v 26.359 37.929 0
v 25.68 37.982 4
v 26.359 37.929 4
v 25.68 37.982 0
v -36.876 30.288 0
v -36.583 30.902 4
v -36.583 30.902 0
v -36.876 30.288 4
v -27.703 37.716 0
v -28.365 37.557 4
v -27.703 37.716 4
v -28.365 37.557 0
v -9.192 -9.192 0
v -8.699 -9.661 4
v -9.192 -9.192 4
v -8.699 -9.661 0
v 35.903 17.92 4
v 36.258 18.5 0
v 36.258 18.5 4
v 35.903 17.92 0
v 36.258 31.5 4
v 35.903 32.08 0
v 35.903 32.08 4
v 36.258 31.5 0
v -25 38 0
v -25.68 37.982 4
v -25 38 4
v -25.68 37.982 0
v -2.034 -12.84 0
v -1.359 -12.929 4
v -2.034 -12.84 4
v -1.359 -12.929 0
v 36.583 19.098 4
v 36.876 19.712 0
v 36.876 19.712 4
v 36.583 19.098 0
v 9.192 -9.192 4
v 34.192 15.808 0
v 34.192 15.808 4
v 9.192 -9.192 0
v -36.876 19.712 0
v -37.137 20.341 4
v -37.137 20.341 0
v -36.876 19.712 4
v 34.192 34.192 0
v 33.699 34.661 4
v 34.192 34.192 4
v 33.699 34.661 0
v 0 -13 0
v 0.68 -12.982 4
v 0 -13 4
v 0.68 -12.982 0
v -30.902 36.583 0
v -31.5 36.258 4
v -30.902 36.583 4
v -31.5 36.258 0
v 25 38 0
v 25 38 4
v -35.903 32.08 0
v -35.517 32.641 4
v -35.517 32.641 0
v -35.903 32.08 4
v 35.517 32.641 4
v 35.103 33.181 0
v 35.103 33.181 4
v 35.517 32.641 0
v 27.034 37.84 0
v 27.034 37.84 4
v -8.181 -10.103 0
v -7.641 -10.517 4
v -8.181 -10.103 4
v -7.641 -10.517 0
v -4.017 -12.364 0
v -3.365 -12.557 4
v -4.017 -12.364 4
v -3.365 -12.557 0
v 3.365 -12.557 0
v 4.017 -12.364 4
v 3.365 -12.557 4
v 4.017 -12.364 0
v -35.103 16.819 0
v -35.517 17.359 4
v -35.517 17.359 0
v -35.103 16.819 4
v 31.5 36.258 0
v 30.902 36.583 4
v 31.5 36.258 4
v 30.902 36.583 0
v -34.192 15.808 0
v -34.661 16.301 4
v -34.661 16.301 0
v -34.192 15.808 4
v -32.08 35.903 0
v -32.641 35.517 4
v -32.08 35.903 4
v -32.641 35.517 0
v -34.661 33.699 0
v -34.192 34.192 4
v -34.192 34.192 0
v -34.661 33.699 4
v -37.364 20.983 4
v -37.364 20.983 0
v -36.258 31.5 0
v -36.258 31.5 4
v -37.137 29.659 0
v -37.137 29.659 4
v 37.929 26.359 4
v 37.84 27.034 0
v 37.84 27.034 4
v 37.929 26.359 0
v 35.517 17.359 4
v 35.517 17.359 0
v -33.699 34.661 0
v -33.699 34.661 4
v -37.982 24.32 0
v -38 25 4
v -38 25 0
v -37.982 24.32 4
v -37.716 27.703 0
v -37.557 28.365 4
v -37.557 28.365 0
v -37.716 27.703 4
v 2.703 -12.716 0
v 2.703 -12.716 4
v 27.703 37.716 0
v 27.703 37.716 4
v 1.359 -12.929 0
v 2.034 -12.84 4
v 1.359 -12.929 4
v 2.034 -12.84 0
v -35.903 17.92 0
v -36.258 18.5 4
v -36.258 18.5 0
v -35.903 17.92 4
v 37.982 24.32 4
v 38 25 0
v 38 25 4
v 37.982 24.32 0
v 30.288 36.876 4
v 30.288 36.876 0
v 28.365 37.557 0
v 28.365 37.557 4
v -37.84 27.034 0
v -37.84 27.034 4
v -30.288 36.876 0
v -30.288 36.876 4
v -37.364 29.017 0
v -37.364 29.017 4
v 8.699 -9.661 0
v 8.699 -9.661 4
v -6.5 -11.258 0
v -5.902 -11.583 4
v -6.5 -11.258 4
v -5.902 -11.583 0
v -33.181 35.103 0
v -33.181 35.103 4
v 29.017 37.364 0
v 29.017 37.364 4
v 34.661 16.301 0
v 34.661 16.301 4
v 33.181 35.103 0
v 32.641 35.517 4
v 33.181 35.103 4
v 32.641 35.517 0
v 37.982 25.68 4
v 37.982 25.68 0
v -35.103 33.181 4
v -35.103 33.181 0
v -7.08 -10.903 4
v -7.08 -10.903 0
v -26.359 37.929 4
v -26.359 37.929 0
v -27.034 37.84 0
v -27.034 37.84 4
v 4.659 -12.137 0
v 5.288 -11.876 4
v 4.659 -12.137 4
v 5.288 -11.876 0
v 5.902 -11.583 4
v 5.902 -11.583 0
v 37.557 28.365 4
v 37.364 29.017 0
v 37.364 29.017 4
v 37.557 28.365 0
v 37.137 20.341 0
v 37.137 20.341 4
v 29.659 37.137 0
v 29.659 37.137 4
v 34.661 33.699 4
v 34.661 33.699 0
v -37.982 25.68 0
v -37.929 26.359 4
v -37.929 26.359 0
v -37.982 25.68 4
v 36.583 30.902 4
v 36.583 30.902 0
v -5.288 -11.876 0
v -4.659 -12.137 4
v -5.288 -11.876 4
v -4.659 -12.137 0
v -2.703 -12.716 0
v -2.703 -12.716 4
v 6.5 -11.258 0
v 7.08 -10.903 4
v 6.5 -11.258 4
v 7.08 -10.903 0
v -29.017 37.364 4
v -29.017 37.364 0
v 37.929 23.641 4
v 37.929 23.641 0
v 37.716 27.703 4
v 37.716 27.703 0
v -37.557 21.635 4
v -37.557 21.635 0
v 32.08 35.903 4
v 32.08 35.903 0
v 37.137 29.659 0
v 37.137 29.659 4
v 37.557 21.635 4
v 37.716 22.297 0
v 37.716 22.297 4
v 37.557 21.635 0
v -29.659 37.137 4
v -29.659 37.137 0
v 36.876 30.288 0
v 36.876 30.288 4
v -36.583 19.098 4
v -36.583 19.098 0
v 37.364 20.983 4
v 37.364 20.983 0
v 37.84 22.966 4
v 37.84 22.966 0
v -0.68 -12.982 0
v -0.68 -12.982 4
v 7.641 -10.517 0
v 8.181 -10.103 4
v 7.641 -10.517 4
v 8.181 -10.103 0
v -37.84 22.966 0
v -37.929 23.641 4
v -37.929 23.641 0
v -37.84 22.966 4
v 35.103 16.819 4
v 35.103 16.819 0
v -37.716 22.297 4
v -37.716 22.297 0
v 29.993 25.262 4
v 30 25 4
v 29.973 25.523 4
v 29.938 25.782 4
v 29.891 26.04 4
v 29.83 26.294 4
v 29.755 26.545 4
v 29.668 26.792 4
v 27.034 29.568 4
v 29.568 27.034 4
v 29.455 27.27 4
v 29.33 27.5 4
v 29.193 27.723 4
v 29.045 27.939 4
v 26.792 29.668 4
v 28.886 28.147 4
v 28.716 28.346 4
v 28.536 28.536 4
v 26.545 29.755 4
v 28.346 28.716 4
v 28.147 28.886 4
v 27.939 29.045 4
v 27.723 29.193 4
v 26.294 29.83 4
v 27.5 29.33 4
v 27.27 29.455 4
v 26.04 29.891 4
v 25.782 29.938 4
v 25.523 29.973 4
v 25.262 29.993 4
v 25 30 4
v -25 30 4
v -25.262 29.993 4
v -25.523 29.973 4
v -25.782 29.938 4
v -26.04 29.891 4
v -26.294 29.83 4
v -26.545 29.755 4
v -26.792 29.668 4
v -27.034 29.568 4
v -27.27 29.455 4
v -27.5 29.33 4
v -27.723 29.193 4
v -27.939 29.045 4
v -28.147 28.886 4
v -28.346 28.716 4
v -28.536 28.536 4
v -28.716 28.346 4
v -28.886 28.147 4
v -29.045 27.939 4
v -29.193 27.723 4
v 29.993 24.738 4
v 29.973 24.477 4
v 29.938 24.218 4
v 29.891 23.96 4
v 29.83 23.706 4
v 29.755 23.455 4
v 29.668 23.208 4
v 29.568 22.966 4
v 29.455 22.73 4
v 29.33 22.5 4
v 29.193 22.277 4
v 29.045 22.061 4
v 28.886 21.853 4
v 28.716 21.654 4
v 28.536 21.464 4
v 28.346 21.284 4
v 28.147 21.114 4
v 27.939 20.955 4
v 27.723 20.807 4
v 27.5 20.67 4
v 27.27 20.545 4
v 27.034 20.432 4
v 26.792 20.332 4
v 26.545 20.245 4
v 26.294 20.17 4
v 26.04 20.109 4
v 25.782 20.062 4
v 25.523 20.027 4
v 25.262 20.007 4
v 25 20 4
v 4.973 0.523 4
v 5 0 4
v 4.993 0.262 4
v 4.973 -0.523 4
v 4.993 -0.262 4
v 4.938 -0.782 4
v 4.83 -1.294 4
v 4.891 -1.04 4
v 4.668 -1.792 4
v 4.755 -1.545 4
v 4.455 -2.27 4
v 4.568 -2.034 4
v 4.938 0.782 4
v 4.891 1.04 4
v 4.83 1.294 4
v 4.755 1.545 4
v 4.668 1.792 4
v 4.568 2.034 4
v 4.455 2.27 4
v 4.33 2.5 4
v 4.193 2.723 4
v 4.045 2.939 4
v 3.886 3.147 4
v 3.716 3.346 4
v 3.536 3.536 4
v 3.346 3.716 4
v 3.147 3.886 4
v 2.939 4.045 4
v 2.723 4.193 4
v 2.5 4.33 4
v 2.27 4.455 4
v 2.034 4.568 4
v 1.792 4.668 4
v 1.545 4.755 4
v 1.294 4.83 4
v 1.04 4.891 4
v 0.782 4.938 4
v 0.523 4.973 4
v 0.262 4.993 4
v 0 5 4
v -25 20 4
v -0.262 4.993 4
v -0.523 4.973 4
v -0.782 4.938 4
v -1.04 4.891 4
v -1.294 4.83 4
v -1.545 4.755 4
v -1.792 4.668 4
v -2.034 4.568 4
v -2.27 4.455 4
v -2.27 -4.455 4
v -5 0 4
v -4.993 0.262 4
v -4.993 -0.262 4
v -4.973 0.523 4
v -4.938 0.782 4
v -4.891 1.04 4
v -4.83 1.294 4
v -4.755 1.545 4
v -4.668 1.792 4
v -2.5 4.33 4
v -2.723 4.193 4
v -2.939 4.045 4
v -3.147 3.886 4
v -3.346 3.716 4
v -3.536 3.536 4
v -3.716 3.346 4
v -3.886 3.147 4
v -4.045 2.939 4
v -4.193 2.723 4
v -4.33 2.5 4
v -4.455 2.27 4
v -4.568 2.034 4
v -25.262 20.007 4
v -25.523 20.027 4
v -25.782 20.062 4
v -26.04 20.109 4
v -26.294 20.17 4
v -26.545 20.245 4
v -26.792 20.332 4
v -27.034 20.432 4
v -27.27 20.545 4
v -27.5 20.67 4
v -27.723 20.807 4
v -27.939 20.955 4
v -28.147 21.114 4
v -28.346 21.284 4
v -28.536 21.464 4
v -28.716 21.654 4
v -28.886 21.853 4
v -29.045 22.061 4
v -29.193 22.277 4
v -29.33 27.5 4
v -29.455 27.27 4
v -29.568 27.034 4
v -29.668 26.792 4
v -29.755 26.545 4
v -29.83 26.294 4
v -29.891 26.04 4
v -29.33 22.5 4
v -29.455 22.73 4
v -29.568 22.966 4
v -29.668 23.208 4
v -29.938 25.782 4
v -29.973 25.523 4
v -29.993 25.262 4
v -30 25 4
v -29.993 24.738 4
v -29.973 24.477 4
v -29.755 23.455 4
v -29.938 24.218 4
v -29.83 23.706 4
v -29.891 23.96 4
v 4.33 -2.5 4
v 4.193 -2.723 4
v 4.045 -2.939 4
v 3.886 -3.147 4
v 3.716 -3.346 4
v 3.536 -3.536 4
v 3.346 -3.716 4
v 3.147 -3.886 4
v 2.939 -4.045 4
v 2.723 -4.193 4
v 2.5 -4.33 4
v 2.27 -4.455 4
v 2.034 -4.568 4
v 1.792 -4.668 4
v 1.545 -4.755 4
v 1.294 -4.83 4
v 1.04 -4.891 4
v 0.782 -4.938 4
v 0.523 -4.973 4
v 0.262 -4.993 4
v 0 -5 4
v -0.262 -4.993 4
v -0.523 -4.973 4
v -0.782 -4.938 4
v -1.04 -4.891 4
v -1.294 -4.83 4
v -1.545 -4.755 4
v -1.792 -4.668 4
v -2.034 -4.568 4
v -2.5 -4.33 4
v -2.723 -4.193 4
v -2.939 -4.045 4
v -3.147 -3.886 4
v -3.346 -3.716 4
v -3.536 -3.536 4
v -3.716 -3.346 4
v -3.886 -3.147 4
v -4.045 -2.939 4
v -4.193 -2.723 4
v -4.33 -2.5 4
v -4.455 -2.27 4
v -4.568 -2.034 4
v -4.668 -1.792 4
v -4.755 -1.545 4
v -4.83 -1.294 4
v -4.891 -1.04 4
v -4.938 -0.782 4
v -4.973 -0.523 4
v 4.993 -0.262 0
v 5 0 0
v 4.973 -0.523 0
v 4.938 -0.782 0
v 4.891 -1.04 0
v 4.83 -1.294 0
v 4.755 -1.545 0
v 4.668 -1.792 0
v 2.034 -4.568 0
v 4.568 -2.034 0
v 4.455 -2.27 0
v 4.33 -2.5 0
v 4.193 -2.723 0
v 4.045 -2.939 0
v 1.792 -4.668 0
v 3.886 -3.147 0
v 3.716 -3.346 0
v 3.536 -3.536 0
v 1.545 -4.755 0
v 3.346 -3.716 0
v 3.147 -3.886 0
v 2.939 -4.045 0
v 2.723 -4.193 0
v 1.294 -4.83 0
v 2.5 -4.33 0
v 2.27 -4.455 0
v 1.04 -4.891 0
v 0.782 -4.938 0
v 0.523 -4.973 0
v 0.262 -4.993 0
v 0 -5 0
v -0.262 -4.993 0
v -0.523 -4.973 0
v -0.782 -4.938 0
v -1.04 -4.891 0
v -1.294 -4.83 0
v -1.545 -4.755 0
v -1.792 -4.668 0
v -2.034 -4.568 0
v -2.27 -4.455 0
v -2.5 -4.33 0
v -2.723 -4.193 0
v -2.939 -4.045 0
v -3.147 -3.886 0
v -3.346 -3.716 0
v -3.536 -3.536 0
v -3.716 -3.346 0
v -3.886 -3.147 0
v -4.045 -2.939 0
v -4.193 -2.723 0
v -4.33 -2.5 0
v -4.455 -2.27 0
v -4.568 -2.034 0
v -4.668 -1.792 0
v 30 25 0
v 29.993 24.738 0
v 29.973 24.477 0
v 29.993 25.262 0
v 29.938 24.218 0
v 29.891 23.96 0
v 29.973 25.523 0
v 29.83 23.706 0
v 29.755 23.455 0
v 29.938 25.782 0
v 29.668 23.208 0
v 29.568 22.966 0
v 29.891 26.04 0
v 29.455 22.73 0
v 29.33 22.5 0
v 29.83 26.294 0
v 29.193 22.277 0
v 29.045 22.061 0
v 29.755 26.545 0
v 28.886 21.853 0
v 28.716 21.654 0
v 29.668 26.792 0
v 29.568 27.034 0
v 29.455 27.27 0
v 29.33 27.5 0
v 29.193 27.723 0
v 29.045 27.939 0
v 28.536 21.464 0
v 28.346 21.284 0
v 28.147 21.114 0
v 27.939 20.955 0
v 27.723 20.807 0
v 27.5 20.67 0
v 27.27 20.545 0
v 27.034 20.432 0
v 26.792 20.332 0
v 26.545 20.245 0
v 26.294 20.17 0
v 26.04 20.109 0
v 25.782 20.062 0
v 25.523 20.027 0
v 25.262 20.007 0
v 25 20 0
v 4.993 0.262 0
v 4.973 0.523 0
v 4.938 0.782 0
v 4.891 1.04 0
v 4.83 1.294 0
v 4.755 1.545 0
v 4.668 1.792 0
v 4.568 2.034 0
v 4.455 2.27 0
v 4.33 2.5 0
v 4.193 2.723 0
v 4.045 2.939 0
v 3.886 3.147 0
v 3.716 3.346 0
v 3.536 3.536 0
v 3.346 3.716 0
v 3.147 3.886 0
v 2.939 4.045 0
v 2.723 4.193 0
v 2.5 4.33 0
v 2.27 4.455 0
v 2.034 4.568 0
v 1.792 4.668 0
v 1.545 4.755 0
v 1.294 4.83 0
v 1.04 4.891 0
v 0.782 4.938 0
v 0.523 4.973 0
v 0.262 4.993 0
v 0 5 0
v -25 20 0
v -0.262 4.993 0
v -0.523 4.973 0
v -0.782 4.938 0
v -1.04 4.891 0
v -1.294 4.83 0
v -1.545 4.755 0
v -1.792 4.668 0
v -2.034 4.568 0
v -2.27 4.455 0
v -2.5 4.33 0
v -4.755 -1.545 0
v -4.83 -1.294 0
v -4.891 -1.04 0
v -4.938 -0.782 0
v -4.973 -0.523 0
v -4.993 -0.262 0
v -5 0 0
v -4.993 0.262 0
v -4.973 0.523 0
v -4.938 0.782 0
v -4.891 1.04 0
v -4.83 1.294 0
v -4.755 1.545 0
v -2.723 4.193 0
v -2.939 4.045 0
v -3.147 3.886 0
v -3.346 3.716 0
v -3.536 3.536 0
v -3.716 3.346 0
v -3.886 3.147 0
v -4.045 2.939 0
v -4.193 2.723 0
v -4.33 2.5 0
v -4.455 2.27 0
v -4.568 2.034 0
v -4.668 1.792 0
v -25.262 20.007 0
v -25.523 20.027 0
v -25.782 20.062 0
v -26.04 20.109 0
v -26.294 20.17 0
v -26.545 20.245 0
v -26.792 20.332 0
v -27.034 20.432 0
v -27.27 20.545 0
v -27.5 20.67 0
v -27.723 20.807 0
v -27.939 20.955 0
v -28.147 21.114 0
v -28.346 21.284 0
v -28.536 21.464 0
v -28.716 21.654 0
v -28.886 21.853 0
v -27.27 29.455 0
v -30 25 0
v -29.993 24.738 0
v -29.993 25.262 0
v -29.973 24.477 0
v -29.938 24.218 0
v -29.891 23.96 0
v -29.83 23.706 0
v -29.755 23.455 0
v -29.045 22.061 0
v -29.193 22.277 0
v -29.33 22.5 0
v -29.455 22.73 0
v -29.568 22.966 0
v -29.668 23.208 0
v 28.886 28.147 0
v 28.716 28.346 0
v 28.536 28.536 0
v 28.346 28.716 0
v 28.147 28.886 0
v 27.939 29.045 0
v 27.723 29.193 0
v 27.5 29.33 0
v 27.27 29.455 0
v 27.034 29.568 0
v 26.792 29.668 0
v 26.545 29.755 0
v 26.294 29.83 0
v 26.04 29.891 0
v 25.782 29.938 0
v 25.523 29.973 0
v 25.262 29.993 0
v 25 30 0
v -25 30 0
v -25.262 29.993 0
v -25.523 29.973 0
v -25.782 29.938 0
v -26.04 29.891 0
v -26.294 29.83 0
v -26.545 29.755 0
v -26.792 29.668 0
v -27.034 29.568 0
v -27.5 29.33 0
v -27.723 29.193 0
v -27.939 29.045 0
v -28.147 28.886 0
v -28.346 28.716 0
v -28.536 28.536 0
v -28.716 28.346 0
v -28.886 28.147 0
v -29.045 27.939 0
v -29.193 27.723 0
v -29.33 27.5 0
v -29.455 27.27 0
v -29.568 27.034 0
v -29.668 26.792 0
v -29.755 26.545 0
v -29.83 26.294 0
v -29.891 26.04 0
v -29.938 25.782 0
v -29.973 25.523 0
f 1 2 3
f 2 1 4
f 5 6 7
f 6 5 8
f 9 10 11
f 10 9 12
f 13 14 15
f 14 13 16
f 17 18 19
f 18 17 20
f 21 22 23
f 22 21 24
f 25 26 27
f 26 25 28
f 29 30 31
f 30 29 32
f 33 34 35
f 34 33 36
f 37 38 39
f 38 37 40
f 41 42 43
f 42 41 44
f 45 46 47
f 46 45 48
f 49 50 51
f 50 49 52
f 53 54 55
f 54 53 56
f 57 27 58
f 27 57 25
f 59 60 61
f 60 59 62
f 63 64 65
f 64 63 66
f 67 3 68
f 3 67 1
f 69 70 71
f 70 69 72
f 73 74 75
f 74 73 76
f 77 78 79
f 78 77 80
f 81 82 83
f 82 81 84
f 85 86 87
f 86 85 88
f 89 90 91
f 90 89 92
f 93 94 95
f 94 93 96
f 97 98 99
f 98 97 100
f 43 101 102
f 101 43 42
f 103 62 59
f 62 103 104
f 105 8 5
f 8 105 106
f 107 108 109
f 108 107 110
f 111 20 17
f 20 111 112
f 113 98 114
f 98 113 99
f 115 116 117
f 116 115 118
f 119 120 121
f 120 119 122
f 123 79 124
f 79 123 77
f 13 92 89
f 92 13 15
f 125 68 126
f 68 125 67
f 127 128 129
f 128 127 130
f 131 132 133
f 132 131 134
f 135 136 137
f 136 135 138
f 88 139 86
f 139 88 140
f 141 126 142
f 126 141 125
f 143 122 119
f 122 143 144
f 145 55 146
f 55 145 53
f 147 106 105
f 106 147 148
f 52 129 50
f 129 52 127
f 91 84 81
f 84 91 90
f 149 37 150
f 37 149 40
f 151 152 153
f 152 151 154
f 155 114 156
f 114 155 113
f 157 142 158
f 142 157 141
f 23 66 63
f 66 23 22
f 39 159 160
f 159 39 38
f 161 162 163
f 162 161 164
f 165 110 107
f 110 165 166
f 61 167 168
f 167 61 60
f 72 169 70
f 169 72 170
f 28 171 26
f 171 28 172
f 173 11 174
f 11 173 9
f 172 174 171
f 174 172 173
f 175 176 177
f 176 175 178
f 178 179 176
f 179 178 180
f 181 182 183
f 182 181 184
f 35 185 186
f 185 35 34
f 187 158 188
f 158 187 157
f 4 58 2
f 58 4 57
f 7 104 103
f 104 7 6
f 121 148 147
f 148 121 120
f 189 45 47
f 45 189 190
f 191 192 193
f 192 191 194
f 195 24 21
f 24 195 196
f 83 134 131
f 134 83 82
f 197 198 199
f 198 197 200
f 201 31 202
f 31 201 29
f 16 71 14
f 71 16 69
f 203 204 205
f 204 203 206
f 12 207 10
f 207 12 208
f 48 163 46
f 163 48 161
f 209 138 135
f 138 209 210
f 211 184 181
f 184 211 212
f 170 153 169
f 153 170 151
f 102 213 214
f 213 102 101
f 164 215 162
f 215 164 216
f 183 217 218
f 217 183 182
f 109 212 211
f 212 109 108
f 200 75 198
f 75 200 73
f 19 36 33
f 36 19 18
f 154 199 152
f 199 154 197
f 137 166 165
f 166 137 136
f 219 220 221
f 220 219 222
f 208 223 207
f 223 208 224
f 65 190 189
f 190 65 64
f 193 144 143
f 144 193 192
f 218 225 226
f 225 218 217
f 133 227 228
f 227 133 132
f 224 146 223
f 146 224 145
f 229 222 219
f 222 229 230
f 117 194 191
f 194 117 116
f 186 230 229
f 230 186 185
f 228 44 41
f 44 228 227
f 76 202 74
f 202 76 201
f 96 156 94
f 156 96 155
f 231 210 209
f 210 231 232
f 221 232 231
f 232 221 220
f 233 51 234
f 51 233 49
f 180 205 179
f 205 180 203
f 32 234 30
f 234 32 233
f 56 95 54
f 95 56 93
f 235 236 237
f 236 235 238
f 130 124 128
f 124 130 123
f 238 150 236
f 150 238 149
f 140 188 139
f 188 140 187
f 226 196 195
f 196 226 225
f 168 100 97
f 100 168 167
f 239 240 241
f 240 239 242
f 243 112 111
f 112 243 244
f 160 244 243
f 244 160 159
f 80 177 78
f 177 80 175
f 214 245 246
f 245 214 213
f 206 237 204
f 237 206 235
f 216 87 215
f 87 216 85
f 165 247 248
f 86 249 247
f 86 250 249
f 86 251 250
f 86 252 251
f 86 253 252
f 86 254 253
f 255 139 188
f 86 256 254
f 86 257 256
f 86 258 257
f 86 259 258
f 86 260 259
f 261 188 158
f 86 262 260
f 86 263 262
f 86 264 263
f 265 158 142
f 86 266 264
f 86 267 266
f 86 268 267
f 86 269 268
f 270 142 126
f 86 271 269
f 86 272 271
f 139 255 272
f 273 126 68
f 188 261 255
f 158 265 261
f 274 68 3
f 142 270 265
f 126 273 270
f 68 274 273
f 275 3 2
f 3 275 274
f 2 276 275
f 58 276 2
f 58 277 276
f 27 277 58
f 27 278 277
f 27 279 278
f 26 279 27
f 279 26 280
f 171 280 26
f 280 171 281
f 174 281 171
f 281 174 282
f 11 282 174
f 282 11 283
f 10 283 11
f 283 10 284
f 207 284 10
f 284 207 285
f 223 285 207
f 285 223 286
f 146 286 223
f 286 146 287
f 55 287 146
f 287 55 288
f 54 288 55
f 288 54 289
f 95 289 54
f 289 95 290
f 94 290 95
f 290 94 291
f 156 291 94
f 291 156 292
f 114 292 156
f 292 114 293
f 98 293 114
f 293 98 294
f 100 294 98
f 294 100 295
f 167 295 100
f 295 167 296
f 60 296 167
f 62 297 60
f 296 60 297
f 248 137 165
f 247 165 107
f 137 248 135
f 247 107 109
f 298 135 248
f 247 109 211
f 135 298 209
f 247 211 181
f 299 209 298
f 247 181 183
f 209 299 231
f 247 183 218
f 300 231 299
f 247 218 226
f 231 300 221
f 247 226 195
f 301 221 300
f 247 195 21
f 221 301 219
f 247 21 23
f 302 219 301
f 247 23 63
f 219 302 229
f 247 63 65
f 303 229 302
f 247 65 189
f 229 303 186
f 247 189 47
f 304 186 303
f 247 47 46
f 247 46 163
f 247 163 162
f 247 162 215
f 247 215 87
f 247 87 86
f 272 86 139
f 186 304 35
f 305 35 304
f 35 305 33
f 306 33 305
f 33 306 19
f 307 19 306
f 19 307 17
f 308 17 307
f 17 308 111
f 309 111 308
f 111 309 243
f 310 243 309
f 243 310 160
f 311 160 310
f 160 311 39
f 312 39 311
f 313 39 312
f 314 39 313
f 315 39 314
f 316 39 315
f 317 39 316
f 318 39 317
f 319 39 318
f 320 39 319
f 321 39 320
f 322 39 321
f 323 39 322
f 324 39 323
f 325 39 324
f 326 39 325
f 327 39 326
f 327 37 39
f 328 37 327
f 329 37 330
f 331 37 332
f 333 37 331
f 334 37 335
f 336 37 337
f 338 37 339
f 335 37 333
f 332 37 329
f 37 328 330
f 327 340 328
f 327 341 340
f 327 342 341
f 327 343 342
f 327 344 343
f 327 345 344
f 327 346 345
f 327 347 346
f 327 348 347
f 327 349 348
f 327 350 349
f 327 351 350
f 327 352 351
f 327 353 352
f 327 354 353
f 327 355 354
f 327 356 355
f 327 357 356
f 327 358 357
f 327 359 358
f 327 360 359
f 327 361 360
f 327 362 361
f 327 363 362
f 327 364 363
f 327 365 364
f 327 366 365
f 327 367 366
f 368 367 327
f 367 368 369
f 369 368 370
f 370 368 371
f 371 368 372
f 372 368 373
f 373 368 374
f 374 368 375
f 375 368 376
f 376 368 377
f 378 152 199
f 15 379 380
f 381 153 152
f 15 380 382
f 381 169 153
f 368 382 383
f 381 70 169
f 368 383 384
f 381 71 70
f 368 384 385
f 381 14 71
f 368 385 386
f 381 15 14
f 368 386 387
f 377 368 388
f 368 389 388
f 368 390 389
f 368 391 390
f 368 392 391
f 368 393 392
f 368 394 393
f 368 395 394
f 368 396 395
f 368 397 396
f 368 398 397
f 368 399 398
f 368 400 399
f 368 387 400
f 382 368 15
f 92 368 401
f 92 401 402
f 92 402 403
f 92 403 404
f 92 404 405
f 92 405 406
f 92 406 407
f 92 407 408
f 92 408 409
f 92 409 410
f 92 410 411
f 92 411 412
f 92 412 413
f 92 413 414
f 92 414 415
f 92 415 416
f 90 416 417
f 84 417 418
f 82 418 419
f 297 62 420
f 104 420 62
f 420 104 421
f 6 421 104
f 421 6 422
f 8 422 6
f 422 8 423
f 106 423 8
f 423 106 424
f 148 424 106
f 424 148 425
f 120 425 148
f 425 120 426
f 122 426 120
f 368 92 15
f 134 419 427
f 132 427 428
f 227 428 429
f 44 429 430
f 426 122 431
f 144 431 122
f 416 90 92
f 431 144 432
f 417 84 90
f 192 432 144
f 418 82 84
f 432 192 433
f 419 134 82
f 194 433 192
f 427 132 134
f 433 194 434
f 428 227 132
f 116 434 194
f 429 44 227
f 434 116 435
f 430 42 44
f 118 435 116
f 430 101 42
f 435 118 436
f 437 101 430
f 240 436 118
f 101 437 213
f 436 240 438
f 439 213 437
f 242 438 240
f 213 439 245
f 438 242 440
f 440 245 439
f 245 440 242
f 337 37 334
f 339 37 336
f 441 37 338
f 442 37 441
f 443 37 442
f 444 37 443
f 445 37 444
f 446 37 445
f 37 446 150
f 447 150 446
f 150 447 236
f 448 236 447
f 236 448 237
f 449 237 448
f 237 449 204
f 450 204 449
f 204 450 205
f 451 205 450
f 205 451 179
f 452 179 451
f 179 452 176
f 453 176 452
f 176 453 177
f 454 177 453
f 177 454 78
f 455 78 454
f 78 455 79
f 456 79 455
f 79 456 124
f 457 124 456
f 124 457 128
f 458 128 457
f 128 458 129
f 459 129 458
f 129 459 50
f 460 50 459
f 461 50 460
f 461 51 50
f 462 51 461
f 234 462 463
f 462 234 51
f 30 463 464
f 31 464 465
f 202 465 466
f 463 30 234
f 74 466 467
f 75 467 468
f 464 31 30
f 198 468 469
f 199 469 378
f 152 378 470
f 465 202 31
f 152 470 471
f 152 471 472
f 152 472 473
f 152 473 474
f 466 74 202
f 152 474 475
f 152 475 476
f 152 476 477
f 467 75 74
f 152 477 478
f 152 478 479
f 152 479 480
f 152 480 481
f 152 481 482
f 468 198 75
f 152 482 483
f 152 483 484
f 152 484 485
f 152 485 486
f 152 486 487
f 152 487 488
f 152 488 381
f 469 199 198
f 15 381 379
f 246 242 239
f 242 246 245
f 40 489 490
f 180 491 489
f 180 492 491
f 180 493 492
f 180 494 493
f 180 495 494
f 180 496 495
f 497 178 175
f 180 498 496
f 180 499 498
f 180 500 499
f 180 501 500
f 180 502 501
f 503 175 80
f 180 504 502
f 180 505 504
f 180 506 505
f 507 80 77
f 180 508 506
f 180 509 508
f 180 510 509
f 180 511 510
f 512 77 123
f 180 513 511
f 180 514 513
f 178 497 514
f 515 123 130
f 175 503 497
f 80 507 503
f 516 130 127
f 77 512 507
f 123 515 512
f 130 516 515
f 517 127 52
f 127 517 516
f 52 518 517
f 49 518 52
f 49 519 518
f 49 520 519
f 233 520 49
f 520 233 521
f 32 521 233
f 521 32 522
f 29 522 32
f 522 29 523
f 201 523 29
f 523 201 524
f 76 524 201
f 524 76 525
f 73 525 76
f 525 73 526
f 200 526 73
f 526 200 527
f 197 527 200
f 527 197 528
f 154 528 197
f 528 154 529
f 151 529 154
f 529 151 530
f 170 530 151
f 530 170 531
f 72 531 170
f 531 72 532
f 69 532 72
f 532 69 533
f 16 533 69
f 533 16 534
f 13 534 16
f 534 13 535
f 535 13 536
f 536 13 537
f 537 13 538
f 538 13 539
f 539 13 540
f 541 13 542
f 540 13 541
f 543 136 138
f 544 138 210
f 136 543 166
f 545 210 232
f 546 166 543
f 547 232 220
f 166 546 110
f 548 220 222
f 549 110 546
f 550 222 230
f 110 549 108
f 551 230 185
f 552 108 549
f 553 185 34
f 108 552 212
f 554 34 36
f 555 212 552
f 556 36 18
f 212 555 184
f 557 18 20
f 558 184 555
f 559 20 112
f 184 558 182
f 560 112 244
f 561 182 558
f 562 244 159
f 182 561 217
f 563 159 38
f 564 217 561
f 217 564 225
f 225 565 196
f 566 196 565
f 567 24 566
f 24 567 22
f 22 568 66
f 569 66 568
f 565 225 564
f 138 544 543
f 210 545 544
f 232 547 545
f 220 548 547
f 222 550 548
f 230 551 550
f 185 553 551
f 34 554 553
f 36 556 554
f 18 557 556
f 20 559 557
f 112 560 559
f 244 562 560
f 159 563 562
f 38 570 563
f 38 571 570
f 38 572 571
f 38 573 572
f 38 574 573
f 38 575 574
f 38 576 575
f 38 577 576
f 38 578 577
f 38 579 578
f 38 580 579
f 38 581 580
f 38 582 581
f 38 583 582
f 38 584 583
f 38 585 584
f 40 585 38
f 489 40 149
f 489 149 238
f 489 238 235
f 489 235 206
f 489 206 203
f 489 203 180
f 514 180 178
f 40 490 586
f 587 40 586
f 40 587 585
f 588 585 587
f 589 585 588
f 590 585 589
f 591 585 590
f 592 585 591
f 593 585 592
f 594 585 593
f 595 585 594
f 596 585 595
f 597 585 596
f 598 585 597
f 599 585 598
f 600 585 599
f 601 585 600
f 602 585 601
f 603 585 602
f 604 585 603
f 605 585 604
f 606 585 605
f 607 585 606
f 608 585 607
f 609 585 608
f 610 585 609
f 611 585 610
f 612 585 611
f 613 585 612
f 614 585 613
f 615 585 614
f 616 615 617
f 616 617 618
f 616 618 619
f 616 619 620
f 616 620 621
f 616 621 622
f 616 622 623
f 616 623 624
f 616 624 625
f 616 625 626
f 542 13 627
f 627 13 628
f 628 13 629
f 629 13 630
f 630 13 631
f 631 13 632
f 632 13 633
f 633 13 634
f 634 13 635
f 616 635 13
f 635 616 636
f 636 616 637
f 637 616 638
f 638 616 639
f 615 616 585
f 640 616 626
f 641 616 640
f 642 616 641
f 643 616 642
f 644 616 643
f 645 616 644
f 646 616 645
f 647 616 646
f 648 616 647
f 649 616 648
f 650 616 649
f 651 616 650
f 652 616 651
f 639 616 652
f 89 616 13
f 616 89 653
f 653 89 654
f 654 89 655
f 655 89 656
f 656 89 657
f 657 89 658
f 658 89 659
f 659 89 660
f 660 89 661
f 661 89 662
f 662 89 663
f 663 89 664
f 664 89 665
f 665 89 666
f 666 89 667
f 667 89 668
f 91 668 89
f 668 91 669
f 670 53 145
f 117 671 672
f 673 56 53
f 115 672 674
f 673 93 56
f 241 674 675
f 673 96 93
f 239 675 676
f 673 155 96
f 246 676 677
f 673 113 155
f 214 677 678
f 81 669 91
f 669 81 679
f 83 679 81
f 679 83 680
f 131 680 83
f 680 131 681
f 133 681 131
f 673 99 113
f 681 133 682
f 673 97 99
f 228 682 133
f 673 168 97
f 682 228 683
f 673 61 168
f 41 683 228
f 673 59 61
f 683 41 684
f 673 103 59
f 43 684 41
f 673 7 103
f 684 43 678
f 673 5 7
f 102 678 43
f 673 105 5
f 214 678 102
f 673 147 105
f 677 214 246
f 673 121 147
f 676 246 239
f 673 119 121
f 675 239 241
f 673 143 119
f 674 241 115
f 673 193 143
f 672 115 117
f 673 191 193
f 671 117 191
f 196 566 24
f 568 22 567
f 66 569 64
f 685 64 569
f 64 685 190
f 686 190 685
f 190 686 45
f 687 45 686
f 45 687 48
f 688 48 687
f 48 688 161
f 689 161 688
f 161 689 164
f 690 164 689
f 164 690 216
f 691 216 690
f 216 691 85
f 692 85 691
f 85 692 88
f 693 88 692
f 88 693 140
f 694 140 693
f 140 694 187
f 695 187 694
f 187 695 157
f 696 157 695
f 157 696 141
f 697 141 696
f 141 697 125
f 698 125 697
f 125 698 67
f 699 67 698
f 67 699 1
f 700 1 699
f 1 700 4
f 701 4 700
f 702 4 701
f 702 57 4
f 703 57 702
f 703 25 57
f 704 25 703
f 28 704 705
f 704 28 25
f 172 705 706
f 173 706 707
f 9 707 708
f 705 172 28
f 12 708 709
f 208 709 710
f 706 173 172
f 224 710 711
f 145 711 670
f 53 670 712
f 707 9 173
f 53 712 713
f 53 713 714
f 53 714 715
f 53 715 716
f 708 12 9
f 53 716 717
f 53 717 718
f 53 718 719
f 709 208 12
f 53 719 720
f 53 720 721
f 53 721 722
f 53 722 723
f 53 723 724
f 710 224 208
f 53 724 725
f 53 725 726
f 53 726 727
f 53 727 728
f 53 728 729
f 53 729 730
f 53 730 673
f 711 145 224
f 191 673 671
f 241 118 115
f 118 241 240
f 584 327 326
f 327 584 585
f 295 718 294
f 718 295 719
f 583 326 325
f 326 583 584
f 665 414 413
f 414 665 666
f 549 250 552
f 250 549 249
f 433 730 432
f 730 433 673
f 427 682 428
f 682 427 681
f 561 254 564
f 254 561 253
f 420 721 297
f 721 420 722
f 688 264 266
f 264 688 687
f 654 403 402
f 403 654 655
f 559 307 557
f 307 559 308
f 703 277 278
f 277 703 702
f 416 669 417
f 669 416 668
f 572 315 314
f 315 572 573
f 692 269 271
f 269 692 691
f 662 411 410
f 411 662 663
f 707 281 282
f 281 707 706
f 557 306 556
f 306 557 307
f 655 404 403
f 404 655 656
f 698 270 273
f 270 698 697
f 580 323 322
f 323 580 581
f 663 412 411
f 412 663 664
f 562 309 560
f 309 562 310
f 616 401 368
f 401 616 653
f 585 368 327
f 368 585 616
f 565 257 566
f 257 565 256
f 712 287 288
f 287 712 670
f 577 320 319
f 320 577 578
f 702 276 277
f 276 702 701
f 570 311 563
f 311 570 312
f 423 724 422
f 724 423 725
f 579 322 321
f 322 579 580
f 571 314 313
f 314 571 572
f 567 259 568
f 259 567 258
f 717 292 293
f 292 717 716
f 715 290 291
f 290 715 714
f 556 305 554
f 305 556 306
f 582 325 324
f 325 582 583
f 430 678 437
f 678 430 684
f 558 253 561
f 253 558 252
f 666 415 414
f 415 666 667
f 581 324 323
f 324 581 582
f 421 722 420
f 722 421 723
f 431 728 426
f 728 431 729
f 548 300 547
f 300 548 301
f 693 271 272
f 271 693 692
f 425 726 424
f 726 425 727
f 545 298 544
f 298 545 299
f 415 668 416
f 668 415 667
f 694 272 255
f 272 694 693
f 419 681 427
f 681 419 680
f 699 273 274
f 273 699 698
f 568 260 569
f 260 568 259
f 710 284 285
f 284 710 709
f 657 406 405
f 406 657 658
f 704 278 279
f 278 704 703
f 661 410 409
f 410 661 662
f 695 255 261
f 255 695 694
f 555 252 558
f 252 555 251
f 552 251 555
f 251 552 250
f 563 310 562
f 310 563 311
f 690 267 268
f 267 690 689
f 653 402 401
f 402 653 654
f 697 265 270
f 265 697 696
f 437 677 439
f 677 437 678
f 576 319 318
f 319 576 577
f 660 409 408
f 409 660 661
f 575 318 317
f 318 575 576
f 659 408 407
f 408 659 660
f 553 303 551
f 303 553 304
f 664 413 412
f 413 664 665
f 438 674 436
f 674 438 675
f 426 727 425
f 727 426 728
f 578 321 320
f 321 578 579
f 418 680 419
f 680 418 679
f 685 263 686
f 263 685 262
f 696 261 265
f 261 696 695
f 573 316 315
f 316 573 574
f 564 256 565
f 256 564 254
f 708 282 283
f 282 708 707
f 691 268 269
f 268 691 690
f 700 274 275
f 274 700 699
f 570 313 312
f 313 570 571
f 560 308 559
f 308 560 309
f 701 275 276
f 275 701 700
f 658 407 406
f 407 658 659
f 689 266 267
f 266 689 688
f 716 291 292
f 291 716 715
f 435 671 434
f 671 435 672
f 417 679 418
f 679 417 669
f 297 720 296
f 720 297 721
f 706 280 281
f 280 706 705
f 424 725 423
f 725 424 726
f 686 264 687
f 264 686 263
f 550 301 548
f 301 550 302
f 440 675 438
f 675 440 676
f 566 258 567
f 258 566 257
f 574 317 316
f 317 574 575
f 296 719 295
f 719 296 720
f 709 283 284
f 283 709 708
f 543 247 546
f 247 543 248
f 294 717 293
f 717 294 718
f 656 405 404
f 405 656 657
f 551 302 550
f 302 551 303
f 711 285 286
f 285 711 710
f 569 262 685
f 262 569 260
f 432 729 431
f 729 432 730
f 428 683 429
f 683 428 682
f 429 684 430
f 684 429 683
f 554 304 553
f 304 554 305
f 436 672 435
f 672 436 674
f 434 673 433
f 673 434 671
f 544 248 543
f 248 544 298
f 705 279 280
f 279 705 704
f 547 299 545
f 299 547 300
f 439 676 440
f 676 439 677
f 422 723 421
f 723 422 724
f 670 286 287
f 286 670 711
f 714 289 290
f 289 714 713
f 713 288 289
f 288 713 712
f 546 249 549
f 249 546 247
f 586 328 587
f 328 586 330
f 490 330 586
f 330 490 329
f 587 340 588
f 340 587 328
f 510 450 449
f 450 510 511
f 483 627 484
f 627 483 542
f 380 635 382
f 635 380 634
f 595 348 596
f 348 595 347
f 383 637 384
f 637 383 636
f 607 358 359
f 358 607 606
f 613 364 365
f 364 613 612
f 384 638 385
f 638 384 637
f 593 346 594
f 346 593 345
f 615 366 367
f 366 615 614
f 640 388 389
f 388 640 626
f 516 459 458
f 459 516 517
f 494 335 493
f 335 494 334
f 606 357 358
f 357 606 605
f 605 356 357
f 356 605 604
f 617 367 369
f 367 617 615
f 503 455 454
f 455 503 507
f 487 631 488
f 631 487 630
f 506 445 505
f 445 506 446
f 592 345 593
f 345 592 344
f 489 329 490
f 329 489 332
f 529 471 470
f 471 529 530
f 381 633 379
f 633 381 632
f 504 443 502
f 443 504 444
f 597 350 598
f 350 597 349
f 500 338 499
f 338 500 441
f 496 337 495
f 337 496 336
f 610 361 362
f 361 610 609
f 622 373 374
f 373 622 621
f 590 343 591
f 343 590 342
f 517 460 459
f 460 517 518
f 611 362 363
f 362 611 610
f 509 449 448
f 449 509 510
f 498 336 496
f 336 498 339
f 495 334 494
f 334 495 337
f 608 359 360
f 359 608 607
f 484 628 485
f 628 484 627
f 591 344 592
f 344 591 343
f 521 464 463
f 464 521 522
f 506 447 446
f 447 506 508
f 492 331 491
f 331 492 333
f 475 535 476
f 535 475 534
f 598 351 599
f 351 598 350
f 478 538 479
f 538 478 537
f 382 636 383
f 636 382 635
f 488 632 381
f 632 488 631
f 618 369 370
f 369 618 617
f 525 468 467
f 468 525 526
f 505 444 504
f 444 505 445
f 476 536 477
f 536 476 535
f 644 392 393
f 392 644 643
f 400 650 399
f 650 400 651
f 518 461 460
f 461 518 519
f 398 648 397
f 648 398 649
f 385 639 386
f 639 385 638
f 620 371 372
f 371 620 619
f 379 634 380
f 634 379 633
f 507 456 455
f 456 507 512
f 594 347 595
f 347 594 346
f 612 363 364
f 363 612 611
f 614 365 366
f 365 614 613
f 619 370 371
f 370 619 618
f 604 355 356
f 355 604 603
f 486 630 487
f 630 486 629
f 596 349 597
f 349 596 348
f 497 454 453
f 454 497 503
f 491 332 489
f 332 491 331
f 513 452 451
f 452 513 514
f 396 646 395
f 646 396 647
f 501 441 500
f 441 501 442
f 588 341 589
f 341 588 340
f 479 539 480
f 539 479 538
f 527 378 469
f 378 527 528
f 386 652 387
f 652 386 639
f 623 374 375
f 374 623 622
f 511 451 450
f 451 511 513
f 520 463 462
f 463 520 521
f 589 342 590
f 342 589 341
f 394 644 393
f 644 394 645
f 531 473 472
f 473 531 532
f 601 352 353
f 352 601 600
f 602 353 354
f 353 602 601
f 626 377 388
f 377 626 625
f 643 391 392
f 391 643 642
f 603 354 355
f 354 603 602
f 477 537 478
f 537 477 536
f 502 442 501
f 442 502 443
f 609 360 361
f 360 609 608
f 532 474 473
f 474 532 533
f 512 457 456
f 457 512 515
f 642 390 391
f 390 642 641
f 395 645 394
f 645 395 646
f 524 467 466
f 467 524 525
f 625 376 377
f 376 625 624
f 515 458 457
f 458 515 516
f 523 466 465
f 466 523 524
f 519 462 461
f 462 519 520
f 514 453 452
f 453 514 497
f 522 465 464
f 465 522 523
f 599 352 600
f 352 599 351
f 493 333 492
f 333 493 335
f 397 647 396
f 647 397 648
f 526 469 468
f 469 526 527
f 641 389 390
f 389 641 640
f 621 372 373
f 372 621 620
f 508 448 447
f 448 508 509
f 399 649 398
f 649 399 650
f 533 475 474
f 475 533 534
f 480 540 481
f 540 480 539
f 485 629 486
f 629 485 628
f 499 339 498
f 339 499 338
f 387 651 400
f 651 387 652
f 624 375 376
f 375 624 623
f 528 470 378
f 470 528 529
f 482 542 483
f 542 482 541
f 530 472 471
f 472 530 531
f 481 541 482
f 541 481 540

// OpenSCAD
$fn=120;

difference() {
    hull() {
        cylinder(4, 13, 13);
        translate([25, 25, 0])
            cylinder(4, 13, 13);
        translate([-25, 25, 0])
            cylinder(4, 13, 13);
    }
    hull() {
        translate([25, 25, 0])
            cylinder(4, 5, 5);
        translate([-25, 25, 0])
            cylinder(4, 5, 5);
    }
    cylinder(4, 5, 5);
}
